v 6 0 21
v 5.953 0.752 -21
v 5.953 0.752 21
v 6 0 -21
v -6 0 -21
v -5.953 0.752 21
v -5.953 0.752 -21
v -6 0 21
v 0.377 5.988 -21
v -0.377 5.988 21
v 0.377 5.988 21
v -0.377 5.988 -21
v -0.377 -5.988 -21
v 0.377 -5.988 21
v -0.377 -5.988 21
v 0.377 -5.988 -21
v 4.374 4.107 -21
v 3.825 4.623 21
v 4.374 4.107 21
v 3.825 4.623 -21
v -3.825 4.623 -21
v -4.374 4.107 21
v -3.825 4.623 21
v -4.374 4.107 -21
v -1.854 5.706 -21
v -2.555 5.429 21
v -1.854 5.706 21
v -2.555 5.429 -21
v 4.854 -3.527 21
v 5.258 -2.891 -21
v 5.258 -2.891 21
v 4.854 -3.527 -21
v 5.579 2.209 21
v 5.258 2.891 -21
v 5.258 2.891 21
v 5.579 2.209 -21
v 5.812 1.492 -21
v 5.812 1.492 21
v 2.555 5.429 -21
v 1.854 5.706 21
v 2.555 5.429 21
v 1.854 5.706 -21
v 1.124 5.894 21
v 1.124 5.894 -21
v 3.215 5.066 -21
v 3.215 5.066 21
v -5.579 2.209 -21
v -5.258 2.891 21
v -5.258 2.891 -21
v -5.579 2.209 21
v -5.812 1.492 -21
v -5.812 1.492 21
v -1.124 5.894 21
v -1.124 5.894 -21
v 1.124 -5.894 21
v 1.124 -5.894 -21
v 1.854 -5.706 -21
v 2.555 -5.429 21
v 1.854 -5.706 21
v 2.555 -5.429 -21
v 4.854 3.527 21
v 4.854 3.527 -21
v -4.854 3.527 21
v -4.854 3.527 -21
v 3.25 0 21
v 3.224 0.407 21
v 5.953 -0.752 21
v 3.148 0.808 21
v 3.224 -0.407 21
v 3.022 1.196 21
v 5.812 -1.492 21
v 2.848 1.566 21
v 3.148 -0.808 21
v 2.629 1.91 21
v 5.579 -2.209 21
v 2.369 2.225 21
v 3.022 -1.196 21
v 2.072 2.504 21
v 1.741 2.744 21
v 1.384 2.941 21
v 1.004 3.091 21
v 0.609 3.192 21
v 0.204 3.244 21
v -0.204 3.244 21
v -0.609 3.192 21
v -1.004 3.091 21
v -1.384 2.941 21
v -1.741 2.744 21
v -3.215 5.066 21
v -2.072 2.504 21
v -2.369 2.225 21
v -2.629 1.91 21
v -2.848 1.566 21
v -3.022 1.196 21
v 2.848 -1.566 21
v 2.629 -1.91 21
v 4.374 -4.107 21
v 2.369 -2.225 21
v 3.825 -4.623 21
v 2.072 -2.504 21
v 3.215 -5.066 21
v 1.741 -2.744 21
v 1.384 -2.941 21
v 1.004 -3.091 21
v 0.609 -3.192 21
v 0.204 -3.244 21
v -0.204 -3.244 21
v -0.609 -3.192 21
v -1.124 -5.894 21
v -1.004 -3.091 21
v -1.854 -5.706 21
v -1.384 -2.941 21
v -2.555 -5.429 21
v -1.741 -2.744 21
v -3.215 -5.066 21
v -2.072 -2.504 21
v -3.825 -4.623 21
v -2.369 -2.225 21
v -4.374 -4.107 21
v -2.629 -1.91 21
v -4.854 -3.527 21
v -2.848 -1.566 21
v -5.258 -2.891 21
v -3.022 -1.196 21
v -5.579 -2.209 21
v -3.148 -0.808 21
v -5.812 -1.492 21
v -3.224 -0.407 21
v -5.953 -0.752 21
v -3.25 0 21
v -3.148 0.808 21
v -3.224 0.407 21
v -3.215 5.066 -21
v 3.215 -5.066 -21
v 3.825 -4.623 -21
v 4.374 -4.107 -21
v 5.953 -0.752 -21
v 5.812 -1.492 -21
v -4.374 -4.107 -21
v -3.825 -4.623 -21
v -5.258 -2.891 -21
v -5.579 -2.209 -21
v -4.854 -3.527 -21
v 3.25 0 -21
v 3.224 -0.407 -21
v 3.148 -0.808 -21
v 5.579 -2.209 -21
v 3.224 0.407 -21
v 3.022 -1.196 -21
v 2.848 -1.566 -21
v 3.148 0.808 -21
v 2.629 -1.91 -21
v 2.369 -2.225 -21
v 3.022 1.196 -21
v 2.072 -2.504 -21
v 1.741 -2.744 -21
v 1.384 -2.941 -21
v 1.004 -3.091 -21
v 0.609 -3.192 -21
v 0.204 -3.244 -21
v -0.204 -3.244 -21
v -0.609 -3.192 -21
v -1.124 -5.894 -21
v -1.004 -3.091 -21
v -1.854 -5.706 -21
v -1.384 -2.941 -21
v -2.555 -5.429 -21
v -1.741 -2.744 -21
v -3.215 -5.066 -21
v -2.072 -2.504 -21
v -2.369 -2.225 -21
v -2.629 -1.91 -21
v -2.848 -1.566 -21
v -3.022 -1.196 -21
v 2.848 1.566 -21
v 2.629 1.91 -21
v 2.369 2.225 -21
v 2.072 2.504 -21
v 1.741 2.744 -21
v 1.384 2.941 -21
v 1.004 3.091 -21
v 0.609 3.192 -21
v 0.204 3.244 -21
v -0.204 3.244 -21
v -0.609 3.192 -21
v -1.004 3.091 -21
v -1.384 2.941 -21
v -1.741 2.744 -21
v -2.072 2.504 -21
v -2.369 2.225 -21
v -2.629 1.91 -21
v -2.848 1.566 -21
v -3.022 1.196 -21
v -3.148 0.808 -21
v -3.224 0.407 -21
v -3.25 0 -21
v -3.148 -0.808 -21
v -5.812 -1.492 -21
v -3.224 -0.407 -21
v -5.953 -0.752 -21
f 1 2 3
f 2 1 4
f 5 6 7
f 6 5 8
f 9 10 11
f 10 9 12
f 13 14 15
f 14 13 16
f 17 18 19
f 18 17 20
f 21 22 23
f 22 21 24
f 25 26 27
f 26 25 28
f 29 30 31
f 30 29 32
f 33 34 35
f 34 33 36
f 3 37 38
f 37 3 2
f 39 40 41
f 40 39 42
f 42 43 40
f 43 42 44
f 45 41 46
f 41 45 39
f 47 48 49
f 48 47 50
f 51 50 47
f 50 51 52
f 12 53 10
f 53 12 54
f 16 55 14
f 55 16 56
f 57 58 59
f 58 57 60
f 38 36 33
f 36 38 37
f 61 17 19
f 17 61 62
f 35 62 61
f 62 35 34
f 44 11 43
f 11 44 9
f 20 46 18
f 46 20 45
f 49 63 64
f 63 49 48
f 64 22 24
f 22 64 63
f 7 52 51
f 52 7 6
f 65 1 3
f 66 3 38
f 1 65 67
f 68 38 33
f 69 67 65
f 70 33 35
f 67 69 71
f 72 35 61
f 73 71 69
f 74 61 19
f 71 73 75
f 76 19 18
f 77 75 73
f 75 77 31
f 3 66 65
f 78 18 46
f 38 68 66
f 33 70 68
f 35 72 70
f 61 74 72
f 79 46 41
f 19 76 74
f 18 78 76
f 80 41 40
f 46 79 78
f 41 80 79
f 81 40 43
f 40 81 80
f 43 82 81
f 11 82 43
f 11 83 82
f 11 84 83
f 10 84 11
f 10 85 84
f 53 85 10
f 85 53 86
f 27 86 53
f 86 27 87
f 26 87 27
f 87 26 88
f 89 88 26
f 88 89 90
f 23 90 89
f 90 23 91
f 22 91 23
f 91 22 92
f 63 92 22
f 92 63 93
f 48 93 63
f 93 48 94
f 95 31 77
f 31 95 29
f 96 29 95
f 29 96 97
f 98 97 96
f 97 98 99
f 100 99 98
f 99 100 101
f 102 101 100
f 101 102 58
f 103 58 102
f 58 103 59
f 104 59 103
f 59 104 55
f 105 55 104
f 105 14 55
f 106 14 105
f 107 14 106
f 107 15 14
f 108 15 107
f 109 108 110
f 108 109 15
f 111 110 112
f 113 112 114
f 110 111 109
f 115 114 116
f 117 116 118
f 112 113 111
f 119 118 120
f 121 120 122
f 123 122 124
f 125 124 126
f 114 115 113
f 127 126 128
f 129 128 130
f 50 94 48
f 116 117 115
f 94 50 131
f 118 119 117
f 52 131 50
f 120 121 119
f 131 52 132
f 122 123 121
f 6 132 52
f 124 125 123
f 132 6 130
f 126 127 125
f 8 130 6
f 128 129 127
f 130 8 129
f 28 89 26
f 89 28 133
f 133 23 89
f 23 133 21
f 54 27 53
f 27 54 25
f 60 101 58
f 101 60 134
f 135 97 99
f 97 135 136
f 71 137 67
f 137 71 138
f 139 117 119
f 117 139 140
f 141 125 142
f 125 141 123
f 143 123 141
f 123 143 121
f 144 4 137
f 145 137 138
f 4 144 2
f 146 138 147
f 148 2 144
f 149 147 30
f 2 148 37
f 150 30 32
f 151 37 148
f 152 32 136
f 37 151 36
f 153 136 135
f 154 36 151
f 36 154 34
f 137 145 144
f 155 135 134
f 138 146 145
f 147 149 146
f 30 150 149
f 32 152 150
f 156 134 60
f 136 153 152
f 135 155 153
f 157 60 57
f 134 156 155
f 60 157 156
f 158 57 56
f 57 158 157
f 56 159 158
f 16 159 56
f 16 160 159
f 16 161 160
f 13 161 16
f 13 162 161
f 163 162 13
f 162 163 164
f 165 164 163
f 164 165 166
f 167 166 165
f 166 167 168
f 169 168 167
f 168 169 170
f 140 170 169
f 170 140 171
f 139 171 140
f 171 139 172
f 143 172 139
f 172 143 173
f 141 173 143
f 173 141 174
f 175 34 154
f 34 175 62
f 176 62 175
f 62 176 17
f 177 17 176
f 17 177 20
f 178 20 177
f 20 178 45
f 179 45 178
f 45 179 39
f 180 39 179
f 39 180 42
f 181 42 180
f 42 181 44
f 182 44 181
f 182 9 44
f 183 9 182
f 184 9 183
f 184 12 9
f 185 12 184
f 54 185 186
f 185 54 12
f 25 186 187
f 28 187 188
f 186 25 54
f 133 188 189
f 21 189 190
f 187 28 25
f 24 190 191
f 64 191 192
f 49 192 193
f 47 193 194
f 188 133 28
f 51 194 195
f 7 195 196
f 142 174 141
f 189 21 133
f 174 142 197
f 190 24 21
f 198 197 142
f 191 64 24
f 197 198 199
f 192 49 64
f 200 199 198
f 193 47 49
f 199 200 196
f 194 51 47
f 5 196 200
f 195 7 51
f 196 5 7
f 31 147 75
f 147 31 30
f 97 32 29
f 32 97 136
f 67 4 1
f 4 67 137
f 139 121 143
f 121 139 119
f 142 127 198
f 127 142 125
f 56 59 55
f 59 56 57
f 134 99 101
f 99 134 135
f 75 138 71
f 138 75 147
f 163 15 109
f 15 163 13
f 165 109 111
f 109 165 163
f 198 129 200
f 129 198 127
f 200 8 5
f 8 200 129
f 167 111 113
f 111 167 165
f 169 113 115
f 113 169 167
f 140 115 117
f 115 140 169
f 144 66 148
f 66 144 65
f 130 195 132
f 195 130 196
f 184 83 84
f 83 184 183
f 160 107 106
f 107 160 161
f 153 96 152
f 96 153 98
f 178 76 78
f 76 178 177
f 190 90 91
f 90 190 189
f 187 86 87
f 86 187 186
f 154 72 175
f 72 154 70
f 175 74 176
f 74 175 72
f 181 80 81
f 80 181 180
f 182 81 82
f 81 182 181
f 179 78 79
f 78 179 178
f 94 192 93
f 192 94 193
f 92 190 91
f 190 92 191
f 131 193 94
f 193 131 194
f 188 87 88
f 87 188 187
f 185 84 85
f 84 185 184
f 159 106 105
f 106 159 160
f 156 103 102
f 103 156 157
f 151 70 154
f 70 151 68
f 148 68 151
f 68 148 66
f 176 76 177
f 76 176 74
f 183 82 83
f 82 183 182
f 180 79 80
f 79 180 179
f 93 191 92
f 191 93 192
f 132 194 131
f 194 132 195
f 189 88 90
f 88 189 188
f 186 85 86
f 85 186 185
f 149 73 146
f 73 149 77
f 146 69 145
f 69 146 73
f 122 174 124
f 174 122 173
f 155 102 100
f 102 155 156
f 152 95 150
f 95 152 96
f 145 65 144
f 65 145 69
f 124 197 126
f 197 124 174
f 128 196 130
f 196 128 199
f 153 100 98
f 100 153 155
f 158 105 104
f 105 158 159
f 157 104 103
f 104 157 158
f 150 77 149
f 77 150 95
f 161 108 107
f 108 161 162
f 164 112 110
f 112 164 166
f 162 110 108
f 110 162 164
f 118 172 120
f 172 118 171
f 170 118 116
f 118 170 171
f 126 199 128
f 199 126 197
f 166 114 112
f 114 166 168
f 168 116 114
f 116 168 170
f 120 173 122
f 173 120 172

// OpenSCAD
$fn = 50;


difference() {
	union() {
		translate(v = [0, 0, -21.0000000000]) {
			cylinder(h = 42, r = 6.0000000000);
		}
	}
	union() {
		translate(v = [0, 0, -100.0000000000]) {
			cylinder(h = 200, r = 3.2500000000);
		}
	}
}
